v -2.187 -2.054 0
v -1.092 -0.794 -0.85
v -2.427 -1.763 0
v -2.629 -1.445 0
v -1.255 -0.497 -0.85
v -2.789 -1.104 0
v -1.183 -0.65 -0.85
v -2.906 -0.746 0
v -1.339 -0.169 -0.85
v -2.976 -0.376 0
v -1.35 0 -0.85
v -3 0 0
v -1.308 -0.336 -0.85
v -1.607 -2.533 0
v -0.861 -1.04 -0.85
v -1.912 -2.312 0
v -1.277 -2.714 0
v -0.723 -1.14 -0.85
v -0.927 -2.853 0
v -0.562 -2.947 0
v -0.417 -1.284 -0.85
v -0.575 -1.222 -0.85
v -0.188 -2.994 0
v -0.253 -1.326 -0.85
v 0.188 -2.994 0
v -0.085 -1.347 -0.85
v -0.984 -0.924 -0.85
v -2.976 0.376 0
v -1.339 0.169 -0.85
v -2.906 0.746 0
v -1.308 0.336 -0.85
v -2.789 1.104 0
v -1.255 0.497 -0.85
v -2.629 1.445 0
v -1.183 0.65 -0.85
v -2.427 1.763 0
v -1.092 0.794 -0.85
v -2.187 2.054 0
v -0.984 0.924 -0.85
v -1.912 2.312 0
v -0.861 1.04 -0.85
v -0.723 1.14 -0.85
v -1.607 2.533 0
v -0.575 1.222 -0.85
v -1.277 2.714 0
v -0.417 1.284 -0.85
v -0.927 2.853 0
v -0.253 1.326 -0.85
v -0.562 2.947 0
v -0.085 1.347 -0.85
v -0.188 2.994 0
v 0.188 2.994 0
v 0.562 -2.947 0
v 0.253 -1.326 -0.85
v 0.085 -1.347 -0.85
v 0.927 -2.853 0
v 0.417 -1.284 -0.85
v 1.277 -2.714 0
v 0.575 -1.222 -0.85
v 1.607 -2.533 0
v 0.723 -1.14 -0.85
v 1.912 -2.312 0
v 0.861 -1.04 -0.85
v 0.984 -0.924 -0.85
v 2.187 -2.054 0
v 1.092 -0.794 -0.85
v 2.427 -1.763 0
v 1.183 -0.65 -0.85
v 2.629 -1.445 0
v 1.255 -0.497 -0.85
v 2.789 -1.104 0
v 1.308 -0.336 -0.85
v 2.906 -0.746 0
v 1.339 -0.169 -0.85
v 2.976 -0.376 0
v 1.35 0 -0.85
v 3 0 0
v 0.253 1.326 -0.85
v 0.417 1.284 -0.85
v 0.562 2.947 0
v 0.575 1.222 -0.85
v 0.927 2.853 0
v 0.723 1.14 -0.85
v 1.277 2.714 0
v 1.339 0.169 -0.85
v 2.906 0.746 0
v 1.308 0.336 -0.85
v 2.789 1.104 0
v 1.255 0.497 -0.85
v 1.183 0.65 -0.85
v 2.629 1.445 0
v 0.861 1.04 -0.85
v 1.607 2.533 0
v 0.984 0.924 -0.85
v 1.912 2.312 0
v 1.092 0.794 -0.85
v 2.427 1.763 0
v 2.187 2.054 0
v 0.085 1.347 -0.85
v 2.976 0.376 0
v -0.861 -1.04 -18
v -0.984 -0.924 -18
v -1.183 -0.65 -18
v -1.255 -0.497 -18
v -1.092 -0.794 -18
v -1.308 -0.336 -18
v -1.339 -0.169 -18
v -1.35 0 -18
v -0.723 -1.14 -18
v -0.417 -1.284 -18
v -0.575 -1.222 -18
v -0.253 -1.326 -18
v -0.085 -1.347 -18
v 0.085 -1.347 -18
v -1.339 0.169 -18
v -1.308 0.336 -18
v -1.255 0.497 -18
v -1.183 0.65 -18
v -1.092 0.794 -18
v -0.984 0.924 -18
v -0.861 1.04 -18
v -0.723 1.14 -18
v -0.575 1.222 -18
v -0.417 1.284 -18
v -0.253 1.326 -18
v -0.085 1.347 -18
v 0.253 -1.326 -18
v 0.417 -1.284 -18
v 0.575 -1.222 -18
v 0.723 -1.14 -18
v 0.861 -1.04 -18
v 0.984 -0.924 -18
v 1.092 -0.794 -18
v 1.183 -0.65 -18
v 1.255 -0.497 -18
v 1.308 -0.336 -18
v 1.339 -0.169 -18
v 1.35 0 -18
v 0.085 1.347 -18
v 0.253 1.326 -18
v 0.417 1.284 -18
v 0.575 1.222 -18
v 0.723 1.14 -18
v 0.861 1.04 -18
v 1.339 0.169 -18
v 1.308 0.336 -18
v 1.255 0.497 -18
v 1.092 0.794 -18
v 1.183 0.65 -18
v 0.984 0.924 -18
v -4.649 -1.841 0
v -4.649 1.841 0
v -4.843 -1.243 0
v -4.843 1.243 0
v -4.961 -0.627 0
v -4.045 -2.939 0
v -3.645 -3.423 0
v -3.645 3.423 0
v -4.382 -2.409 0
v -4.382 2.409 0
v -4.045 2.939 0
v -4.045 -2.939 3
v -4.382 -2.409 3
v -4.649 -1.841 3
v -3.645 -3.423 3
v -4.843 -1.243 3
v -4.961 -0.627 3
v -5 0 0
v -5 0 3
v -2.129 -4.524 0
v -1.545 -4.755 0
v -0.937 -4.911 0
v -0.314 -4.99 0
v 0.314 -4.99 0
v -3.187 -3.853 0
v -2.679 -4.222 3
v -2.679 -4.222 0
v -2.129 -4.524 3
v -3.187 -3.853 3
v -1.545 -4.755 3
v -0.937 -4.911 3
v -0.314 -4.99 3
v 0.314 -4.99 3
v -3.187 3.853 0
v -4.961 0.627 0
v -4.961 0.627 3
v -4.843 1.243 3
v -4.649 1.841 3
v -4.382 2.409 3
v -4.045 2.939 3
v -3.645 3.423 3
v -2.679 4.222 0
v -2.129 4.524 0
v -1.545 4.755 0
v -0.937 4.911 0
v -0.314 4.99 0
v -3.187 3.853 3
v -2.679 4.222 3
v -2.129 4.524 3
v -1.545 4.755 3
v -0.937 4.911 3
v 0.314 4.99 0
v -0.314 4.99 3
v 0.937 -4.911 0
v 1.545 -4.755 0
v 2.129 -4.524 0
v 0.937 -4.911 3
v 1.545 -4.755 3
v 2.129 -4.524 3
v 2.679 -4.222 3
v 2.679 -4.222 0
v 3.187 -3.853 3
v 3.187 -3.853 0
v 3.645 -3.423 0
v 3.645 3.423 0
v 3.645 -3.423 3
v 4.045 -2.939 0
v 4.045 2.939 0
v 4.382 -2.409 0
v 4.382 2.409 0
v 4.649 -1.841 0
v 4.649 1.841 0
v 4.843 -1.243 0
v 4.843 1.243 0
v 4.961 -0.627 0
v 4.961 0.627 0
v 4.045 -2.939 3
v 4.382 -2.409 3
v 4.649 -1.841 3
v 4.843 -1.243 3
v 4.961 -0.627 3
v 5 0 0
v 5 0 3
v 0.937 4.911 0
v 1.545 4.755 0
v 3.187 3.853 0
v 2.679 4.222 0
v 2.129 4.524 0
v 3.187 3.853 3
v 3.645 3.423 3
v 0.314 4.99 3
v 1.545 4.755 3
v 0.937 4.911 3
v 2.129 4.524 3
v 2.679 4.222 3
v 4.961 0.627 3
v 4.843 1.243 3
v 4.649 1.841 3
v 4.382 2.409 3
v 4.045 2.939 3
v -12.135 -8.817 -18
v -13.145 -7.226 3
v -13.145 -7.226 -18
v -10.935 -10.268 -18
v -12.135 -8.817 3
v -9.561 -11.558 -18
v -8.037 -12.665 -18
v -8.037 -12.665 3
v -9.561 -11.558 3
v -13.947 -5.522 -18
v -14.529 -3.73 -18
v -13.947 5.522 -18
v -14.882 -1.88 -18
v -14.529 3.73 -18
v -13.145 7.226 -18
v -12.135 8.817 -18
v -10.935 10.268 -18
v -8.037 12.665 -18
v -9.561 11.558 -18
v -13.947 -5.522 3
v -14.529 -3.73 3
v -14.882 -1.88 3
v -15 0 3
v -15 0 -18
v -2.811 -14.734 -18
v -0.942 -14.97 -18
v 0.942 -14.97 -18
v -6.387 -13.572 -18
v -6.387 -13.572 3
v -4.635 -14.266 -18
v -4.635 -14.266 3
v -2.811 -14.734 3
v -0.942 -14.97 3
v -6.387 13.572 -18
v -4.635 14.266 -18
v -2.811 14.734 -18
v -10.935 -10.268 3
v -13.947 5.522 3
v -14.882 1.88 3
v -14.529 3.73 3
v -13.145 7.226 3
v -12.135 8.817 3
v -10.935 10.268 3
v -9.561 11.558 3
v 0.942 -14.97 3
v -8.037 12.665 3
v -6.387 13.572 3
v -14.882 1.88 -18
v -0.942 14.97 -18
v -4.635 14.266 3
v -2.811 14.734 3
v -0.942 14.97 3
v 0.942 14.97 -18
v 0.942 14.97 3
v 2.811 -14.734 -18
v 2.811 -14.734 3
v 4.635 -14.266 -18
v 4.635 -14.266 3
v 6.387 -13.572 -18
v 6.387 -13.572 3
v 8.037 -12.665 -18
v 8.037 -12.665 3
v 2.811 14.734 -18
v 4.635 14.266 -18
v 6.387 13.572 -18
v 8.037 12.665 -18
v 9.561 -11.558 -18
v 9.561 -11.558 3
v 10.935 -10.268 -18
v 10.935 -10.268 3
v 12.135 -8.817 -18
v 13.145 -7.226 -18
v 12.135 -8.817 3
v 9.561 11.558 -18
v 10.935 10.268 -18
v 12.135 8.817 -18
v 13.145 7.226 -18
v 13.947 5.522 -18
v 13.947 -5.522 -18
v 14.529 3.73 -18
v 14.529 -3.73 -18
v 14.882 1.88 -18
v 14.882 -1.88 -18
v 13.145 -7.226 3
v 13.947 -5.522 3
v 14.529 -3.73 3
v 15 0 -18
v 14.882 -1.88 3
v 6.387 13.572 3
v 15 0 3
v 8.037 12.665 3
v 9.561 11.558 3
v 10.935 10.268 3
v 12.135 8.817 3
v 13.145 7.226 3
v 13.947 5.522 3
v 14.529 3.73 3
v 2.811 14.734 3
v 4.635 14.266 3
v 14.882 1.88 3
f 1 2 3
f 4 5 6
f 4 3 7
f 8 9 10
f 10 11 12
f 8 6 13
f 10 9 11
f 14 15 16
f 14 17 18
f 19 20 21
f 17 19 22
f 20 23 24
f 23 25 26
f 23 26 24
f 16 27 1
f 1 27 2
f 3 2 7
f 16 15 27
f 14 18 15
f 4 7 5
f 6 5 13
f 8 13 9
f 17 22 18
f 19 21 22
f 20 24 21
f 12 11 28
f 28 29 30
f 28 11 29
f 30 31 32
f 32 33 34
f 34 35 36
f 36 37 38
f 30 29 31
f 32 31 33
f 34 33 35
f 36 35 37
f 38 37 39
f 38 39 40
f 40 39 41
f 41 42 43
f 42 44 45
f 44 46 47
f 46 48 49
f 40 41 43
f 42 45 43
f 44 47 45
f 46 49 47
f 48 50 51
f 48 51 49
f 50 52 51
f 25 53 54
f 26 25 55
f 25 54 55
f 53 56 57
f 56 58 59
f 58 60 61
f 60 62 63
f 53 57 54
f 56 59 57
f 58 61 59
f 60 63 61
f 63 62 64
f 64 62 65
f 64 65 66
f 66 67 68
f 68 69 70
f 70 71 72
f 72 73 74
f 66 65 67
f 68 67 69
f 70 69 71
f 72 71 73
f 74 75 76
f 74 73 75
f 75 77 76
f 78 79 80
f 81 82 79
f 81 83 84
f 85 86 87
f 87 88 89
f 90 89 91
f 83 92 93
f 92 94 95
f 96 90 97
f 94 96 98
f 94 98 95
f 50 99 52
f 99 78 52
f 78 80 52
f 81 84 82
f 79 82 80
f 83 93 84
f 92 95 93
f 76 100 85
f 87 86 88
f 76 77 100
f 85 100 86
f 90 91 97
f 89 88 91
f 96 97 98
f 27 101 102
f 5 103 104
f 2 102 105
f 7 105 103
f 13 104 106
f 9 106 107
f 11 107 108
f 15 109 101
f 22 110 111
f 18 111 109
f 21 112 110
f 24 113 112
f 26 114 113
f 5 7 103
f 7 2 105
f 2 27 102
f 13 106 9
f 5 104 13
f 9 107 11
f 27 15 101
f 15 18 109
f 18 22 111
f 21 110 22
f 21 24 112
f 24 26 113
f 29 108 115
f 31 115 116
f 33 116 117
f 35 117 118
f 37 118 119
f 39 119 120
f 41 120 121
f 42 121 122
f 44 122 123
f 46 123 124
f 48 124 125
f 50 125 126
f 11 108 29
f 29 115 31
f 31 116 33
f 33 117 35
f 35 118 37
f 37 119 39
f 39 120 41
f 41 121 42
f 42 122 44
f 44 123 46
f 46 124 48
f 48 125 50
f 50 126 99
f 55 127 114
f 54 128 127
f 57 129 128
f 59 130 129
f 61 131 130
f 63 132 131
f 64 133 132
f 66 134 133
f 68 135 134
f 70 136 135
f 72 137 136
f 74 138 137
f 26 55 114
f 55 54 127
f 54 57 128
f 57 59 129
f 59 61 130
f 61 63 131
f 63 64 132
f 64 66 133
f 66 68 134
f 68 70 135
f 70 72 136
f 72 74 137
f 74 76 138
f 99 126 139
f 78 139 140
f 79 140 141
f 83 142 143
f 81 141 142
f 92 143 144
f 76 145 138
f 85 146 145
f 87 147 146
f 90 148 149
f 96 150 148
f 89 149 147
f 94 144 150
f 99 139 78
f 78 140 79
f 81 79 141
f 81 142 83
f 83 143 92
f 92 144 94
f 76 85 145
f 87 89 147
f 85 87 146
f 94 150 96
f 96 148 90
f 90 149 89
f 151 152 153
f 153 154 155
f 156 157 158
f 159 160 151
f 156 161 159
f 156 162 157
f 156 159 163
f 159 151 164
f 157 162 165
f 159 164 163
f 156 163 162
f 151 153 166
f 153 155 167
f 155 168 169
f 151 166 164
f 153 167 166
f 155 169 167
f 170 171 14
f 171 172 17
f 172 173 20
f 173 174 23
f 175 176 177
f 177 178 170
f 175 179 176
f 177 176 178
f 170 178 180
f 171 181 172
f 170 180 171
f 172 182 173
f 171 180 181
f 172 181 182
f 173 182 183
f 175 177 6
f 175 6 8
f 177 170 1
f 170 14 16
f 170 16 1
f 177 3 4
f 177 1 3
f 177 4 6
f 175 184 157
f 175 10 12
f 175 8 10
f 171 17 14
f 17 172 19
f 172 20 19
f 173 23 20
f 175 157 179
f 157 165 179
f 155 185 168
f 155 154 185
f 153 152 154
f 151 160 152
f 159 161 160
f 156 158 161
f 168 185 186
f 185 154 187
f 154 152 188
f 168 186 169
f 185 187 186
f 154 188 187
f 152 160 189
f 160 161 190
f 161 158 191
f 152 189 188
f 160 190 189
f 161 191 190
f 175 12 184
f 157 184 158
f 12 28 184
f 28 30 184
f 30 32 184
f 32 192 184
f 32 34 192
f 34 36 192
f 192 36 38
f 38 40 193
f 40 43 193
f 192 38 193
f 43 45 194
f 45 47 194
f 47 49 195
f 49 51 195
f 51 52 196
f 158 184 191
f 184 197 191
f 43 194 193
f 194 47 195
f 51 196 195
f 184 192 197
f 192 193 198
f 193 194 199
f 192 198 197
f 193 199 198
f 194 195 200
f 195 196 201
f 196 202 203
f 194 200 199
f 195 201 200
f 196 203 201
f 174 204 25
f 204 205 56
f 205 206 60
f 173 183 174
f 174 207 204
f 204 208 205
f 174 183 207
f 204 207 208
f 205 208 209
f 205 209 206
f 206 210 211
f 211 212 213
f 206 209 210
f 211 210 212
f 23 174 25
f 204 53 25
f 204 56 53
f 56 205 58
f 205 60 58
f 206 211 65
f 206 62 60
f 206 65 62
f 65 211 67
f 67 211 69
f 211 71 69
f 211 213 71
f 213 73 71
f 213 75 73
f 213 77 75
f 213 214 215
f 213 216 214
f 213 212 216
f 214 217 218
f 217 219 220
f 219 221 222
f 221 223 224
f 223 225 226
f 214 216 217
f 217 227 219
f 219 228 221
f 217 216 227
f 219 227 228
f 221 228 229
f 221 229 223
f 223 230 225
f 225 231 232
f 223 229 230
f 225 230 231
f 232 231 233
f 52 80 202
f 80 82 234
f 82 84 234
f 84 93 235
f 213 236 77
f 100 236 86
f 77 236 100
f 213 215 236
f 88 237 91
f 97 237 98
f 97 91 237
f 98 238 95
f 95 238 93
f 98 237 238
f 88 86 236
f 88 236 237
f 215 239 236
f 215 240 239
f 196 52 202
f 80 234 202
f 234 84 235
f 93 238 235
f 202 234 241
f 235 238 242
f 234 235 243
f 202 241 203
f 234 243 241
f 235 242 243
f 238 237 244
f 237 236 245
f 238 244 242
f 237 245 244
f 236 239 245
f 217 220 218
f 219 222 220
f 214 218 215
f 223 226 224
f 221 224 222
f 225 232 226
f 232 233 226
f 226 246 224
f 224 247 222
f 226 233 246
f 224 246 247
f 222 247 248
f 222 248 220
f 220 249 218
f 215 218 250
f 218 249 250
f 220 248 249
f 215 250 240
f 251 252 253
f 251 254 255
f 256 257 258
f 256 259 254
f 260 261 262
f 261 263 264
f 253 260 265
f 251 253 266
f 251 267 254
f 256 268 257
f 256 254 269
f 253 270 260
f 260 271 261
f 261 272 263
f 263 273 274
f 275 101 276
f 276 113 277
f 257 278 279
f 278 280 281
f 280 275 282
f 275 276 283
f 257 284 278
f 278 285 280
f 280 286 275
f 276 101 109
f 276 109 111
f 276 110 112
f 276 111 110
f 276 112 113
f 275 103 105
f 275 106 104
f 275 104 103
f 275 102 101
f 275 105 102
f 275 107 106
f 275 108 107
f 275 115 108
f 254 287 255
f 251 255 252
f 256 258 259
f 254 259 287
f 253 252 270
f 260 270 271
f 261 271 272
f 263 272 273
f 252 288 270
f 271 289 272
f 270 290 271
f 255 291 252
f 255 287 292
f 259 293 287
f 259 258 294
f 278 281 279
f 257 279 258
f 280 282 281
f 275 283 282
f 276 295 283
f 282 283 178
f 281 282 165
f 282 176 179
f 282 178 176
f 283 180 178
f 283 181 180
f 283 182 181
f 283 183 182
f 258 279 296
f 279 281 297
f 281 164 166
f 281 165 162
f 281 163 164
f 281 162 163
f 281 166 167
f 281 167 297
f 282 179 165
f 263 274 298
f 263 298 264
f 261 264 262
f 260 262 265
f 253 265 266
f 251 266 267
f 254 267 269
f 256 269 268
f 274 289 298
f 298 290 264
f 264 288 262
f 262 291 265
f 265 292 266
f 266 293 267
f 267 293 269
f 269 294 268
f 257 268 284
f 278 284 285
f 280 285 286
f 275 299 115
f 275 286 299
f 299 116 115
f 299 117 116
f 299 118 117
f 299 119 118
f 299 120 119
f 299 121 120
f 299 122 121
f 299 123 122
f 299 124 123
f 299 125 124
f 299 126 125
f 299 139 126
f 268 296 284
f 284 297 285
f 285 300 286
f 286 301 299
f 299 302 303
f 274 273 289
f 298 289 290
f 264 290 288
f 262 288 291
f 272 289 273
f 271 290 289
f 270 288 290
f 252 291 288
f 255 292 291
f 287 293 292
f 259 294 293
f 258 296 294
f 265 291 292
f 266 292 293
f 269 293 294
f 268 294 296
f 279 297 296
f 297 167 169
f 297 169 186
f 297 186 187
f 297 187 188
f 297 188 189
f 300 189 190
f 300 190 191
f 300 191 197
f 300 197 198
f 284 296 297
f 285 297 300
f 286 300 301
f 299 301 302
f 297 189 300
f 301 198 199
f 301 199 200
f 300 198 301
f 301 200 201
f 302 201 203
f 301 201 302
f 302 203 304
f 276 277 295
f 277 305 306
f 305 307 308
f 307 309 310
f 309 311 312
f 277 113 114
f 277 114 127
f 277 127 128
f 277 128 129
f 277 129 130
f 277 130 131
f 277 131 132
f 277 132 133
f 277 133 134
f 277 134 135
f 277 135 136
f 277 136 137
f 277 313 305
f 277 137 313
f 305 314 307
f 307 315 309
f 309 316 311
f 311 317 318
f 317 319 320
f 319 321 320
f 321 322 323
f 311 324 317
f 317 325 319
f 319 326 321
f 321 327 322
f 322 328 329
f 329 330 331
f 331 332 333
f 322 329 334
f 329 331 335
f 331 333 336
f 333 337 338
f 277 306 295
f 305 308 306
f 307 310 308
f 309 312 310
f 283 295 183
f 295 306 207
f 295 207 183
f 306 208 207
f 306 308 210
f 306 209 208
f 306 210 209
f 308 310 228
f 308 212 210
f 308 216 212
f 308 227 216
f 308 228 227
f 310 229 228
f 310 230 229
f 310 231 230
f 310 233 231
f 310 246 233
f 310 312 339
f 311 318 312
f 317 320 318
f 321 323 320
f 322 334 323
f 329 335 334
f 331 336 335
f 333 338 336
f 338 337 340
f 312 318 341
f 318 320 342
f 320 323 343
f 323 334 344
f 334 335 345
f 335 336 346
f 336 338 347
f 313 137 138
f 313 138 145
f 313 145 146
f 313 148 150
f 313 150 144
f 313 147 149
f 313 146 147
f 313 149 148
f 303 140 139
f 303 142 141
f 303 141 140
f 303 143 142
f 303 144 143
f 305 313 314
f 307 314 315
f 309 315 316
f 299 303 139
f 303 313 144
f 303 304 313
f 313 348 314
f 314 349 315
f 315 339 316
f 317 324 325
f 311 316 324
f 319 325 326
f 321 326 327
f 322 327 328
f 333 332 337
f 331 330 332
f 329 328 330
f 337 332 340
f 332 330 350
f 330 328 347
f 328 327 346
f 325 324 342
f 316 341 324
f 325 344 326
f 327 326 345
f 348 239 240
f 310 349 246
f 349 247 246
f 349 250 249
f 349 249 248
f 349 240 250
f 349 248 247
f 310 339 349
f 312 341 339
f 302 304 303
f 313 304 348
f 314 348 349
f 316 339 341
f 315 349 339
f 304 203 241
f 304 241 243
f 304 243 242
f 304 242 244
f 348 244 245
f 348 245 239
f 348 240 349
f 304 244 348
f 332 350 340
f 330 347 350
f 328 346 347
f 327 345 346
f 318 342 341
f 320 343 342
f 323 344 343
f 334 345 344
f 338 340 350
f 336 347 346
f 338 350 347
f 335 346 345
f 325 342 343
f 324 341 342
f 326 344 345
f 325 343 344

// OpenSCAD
$fn = 50;

difference() {
	union() {
		translate(v = [0, 0, -18.0]) {
			cylinder(h = 21, r = 15.0);
		}
	}
	union() {
		translate(v = [0, 0, 0]) {
			rotate(a = [0, 0, 0]) {
				difference() {
					union() {
						translate(v = [0, 0, -21.0]) {
							cylinder(h = 21, r = 1.0);
						}
						translate(v = [0, 0, -0.85]) {
							cylinder(h = 0.85, r1 = 1.35, r2 = 3.0);
						}
						translate(v = [0, 0, -21.0]) {
							cylinder(h = 21, r = 1.35);
						}
						translate(v = [0, 0, -21.0]) {
							cylinder(h = 21, r = 1.0);
						}
					}
					union();
				}
			}
		}
		#cylinder(h = 3, r = 5.0);
	}
}
